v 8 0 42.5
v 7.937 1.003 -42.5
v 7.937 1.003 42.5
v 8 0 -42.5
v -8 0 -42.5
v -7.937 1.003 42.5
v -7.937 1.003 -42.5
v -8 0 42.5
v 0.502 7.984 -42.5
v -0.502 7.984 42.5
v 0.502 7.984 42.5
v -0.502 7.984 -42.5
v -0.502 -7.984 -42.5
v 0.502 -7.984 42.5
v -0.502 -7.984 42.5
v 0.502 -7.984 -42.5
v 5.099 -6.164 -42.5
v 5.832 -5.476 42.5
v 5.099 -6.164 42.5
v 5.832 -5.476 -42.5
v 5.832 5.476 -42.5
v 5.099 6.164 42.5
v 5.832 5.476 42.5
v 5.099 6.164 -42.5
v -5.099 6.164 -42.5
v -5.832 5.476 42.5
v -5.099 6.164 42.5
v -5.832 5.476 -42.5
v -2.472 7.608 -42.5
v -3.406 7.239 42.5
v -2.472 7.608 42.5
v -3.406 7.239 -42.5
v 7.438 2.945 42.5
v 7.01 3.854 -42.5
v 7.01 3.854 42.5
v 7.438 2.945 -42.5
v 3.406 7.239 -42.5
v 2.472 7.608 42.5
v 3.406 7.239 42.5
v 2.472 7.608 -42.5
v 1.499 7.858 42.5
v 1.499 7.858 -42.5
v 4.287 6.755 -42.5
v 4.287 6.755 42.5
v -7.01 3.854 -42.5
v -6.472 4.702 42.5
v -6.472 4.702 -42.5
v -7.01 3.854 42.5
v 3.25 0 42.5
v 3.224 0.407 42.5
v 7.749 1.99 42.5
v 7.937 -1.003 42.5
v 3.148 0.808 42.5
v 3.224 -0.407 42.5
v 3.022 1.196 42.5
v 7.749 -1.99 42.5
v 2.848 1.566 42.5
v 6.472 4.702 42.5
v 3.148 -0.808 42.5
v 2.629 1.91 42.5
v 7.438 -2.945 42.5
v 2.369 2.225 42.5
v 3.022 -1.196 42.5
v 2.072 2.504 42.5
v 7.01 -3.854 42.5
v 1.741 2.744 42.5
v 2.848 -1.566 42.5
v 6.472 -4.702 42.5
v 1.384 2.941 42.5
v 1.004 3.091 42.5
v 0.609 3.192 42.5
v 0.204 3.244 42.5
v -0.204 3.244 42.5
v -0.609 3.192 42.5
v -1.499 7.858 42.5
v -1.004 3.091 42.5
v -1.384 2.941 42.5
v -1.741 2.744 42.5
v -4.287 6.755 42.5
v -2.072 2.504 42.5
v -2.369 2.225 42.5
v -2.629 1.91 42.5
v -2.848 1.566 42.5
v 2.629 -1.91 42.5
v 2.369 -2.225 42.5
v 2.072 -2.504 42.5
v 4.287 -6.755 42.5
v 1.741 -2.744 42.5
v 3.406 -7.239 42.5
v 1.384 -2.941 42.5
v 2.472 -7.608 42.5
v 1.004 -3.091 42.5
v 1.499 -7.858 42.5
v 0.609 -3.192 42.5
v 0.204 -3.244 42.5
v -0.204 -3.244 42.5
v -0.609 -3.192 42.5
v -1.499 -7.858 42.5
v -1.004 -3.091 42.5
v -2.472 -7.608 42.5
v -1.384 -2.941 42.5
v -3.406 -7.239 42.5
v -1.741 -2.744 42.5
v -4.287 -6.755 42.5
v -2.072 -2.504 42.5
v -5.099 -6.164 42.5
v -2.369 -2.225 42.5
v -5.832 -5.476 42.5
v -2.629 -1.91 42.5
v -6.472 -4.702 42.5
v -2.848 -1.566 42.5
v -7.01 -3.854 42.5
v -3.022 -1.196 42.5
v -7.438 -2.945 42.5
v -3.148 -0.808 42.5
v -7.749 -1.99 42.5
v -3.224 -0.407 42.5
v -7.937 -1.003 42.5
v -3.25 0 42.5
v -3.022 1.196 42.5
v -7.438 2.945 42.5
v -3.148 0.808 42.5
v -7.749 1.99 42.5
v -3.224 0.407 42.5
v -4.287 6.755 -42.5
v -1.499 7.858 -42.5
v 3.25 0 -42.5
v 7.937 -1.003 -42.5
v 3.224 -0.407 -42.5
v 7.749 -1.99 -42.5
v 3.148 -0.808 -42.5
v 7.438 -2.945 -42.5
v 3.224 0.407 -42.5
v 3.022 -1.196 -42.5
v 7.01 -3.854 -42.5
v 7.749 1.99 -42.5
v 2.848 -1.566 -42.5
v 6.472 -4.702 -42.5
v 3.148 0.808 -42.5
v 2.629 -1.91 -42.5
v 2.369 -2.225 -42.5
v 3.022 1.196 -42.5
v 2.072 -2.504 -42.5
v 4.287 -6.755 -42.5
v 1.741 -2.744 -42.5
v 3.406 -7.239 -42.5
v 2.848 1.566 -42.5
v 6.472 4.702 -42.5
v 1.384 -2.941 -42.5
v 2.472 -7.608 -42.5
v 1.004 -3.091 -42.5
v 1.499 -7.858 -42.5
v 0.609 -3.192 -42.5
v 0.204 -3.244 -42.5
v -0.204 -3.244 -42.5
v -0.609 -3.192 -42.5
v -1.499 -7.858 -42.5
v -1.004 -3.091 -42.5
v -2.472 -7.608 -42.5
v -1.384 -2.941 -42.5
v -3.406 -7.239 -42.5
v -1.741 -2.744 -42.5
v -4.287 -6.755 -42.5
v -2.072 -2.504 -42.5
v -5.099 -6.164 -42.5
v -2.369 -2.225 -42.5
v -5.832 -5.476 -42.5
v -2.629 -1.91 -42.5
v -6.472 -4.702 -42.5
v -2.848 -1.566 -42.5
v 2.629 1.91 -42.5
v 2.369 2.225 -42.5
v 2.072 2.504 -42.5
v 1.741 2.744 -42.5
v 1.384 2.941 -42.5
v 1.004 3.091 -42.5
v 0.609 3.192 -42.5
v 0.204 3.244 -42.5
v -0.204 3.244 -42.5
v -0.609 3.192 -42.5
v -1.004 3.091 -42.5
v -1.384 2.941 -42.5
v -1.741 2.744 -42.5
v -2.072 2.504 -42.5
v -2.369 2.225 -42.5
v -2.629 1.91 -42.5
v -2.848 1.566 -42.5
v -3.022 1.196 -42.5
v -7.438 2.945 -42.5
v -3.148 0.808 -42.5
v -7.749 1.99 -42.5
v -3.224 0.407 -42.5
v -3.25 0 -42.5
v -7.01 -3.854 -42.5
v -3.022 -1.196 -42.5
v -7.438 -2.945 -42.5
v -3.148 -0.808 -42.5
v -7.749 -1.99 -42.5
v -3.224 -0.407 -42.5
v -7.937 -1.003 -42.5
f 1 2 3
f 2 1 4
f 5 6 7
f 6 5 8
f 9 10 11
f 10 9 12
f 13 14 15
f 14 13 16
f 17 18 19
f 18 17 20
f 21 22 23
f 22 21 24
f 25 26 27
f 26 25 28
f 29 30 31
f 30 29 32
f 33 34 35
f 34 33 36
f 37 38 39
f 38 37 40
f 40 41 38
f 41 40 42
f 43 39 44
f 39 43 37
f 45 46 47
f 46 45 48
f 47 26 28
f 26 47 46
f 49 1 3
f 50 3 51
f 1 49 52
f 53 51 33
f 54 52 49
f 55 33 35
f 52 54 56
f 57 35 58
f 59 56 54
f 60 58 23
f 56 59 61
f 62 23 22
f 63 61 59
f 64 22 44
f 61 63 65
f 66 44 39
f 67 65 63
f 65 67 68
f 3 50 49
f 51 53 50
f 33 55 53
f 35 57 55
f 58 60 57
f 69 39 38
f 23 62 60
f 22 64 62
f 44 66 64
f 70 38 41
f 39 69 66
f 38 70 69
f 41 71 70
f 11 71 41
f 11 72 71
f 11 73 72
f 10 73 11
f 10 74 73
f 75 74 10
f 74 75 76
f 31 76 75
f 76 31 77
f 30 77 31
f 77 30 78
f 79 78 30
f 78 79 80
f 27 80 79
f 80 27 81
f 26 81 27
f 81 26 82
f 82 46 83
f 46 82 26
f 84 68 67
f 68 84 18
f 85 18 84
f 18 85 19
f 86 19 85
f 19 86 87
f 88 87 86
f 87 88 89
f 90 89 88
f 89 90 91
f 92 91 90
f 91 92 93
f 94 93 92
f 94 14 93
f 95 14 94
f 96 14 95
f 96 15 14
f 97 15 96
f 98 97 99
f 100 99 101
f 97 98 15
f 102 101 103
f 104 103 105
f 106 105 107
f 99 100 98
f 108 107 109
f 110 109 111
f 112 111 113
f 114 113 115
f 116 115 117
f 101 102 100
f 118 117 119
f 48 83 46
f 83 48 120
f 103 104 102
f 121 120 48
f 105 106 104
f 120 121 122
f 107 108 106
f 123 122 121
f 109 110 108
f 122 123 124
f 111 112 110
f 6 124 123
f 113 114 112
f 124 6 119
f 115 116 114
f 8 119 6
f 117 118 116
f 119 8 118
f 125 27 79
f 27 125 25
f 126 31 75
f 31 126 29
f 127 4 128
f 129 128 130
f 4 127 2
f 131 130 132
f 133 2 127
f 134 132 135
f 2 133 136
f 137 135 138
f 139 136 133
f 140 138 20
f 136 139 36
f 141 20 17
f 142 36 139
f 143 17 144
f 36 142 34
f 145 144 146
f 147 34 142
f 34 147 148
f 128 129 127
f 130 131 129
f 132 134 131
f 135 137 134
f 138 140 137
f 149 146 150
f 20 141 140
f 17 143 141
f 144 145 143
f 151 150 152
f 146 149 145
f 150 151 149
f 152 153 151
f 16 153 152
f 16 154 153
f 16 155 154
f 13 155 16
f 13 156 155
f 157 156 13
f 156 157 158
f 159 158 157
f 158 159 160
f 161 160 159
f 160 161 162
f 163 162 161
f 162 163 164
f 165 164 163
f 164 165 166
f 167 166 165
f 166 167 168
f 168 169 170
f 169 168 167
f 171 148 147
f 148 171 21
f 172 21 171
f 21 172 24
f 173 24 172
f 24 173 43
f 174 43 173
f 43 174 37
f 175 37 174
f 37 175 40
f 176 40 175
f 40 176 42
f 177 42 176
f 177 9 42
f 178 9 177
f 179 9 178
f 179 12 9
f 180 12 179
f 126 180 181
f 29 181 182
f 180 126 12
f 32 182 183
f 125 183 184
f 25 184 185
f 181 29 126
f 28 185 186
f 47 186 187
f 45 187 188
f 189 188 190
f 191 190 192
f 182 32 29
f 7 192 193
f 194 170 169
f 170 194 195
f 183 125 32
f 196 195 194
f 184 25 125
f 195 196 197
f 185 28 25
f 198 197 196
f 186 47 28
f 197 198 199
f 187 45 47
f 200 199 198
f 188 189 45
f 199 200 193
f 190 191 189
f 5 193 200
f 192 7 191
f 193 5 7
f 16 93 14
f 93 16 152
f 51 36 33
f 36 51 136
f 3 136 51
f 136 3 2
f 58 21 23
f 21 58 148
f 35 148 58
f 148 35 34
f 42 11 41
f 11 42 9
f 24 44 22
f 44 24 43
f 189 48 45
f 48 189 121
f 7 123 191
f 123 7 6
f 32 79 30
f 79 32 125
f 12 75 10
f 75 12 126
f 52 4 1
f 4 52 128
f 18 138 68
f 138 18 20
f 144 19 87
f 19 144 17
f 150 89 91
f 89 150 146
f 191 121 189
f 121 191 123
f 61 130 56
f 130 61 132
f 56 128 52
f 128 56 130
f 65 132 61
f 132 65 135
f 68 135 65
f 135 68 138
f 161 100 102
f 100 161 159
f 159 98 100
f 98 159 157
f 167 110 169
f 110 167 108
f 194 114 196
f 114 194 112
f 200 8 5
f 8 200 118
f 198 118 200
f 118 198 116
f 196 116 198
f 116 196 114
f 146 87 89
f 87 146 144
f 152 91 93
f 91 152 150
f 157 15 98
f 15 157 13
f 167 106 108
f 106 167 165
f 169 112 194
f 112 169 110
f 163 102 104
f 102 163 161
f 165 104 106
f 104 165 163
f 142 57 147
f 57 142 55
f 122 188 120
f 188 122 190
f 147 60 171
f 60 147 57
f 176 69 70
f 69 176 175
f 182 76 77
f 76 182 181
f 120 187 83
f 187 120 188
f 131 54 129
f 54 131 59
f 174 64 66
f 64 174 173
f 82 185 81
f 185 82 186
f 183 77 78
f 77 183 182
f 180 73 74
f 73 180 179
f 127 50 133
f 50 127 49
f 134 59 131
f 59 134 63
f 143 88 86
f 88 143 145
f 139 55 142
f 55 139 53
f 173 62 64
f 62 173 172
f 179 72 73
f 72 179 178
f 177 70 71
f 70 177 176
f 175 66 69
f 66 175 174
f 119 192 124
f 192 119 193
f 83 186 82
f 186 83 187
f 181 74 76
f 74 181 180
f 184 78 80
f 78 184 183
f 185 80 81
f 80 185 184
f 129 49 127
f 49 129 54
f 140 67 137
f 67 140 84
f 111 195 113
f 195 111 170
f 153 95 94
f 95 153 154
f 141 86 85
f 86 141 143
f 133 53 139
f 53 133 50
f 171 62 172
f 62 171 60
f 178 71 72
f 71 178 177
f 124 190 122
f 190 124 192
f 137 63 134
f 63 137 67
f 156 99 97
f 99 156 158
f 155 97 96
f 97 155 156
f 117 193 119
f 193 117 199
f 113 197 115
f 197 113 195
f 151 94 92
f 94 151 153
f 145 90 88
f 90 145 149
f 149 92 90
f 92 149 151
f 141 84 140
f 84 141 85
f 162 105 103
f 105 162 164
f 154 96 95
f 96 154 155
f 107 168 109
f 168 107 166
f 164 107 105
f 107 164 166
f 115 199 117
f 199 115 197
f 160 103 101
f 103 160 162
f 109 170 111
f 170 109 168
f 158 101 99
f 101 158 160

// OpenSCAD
$fn = 50;


difference() {
	union() {
		translate(v = [0, 0, -42.5000000000]) {
			cylinder(h = 85, r = 8.0000000000);
		}
	}
	union() {
		translate(v = [0, 0, -100.0000000000]) {
			cylinder(h = 200, r = 3.2500000000);
		}
	}
}
